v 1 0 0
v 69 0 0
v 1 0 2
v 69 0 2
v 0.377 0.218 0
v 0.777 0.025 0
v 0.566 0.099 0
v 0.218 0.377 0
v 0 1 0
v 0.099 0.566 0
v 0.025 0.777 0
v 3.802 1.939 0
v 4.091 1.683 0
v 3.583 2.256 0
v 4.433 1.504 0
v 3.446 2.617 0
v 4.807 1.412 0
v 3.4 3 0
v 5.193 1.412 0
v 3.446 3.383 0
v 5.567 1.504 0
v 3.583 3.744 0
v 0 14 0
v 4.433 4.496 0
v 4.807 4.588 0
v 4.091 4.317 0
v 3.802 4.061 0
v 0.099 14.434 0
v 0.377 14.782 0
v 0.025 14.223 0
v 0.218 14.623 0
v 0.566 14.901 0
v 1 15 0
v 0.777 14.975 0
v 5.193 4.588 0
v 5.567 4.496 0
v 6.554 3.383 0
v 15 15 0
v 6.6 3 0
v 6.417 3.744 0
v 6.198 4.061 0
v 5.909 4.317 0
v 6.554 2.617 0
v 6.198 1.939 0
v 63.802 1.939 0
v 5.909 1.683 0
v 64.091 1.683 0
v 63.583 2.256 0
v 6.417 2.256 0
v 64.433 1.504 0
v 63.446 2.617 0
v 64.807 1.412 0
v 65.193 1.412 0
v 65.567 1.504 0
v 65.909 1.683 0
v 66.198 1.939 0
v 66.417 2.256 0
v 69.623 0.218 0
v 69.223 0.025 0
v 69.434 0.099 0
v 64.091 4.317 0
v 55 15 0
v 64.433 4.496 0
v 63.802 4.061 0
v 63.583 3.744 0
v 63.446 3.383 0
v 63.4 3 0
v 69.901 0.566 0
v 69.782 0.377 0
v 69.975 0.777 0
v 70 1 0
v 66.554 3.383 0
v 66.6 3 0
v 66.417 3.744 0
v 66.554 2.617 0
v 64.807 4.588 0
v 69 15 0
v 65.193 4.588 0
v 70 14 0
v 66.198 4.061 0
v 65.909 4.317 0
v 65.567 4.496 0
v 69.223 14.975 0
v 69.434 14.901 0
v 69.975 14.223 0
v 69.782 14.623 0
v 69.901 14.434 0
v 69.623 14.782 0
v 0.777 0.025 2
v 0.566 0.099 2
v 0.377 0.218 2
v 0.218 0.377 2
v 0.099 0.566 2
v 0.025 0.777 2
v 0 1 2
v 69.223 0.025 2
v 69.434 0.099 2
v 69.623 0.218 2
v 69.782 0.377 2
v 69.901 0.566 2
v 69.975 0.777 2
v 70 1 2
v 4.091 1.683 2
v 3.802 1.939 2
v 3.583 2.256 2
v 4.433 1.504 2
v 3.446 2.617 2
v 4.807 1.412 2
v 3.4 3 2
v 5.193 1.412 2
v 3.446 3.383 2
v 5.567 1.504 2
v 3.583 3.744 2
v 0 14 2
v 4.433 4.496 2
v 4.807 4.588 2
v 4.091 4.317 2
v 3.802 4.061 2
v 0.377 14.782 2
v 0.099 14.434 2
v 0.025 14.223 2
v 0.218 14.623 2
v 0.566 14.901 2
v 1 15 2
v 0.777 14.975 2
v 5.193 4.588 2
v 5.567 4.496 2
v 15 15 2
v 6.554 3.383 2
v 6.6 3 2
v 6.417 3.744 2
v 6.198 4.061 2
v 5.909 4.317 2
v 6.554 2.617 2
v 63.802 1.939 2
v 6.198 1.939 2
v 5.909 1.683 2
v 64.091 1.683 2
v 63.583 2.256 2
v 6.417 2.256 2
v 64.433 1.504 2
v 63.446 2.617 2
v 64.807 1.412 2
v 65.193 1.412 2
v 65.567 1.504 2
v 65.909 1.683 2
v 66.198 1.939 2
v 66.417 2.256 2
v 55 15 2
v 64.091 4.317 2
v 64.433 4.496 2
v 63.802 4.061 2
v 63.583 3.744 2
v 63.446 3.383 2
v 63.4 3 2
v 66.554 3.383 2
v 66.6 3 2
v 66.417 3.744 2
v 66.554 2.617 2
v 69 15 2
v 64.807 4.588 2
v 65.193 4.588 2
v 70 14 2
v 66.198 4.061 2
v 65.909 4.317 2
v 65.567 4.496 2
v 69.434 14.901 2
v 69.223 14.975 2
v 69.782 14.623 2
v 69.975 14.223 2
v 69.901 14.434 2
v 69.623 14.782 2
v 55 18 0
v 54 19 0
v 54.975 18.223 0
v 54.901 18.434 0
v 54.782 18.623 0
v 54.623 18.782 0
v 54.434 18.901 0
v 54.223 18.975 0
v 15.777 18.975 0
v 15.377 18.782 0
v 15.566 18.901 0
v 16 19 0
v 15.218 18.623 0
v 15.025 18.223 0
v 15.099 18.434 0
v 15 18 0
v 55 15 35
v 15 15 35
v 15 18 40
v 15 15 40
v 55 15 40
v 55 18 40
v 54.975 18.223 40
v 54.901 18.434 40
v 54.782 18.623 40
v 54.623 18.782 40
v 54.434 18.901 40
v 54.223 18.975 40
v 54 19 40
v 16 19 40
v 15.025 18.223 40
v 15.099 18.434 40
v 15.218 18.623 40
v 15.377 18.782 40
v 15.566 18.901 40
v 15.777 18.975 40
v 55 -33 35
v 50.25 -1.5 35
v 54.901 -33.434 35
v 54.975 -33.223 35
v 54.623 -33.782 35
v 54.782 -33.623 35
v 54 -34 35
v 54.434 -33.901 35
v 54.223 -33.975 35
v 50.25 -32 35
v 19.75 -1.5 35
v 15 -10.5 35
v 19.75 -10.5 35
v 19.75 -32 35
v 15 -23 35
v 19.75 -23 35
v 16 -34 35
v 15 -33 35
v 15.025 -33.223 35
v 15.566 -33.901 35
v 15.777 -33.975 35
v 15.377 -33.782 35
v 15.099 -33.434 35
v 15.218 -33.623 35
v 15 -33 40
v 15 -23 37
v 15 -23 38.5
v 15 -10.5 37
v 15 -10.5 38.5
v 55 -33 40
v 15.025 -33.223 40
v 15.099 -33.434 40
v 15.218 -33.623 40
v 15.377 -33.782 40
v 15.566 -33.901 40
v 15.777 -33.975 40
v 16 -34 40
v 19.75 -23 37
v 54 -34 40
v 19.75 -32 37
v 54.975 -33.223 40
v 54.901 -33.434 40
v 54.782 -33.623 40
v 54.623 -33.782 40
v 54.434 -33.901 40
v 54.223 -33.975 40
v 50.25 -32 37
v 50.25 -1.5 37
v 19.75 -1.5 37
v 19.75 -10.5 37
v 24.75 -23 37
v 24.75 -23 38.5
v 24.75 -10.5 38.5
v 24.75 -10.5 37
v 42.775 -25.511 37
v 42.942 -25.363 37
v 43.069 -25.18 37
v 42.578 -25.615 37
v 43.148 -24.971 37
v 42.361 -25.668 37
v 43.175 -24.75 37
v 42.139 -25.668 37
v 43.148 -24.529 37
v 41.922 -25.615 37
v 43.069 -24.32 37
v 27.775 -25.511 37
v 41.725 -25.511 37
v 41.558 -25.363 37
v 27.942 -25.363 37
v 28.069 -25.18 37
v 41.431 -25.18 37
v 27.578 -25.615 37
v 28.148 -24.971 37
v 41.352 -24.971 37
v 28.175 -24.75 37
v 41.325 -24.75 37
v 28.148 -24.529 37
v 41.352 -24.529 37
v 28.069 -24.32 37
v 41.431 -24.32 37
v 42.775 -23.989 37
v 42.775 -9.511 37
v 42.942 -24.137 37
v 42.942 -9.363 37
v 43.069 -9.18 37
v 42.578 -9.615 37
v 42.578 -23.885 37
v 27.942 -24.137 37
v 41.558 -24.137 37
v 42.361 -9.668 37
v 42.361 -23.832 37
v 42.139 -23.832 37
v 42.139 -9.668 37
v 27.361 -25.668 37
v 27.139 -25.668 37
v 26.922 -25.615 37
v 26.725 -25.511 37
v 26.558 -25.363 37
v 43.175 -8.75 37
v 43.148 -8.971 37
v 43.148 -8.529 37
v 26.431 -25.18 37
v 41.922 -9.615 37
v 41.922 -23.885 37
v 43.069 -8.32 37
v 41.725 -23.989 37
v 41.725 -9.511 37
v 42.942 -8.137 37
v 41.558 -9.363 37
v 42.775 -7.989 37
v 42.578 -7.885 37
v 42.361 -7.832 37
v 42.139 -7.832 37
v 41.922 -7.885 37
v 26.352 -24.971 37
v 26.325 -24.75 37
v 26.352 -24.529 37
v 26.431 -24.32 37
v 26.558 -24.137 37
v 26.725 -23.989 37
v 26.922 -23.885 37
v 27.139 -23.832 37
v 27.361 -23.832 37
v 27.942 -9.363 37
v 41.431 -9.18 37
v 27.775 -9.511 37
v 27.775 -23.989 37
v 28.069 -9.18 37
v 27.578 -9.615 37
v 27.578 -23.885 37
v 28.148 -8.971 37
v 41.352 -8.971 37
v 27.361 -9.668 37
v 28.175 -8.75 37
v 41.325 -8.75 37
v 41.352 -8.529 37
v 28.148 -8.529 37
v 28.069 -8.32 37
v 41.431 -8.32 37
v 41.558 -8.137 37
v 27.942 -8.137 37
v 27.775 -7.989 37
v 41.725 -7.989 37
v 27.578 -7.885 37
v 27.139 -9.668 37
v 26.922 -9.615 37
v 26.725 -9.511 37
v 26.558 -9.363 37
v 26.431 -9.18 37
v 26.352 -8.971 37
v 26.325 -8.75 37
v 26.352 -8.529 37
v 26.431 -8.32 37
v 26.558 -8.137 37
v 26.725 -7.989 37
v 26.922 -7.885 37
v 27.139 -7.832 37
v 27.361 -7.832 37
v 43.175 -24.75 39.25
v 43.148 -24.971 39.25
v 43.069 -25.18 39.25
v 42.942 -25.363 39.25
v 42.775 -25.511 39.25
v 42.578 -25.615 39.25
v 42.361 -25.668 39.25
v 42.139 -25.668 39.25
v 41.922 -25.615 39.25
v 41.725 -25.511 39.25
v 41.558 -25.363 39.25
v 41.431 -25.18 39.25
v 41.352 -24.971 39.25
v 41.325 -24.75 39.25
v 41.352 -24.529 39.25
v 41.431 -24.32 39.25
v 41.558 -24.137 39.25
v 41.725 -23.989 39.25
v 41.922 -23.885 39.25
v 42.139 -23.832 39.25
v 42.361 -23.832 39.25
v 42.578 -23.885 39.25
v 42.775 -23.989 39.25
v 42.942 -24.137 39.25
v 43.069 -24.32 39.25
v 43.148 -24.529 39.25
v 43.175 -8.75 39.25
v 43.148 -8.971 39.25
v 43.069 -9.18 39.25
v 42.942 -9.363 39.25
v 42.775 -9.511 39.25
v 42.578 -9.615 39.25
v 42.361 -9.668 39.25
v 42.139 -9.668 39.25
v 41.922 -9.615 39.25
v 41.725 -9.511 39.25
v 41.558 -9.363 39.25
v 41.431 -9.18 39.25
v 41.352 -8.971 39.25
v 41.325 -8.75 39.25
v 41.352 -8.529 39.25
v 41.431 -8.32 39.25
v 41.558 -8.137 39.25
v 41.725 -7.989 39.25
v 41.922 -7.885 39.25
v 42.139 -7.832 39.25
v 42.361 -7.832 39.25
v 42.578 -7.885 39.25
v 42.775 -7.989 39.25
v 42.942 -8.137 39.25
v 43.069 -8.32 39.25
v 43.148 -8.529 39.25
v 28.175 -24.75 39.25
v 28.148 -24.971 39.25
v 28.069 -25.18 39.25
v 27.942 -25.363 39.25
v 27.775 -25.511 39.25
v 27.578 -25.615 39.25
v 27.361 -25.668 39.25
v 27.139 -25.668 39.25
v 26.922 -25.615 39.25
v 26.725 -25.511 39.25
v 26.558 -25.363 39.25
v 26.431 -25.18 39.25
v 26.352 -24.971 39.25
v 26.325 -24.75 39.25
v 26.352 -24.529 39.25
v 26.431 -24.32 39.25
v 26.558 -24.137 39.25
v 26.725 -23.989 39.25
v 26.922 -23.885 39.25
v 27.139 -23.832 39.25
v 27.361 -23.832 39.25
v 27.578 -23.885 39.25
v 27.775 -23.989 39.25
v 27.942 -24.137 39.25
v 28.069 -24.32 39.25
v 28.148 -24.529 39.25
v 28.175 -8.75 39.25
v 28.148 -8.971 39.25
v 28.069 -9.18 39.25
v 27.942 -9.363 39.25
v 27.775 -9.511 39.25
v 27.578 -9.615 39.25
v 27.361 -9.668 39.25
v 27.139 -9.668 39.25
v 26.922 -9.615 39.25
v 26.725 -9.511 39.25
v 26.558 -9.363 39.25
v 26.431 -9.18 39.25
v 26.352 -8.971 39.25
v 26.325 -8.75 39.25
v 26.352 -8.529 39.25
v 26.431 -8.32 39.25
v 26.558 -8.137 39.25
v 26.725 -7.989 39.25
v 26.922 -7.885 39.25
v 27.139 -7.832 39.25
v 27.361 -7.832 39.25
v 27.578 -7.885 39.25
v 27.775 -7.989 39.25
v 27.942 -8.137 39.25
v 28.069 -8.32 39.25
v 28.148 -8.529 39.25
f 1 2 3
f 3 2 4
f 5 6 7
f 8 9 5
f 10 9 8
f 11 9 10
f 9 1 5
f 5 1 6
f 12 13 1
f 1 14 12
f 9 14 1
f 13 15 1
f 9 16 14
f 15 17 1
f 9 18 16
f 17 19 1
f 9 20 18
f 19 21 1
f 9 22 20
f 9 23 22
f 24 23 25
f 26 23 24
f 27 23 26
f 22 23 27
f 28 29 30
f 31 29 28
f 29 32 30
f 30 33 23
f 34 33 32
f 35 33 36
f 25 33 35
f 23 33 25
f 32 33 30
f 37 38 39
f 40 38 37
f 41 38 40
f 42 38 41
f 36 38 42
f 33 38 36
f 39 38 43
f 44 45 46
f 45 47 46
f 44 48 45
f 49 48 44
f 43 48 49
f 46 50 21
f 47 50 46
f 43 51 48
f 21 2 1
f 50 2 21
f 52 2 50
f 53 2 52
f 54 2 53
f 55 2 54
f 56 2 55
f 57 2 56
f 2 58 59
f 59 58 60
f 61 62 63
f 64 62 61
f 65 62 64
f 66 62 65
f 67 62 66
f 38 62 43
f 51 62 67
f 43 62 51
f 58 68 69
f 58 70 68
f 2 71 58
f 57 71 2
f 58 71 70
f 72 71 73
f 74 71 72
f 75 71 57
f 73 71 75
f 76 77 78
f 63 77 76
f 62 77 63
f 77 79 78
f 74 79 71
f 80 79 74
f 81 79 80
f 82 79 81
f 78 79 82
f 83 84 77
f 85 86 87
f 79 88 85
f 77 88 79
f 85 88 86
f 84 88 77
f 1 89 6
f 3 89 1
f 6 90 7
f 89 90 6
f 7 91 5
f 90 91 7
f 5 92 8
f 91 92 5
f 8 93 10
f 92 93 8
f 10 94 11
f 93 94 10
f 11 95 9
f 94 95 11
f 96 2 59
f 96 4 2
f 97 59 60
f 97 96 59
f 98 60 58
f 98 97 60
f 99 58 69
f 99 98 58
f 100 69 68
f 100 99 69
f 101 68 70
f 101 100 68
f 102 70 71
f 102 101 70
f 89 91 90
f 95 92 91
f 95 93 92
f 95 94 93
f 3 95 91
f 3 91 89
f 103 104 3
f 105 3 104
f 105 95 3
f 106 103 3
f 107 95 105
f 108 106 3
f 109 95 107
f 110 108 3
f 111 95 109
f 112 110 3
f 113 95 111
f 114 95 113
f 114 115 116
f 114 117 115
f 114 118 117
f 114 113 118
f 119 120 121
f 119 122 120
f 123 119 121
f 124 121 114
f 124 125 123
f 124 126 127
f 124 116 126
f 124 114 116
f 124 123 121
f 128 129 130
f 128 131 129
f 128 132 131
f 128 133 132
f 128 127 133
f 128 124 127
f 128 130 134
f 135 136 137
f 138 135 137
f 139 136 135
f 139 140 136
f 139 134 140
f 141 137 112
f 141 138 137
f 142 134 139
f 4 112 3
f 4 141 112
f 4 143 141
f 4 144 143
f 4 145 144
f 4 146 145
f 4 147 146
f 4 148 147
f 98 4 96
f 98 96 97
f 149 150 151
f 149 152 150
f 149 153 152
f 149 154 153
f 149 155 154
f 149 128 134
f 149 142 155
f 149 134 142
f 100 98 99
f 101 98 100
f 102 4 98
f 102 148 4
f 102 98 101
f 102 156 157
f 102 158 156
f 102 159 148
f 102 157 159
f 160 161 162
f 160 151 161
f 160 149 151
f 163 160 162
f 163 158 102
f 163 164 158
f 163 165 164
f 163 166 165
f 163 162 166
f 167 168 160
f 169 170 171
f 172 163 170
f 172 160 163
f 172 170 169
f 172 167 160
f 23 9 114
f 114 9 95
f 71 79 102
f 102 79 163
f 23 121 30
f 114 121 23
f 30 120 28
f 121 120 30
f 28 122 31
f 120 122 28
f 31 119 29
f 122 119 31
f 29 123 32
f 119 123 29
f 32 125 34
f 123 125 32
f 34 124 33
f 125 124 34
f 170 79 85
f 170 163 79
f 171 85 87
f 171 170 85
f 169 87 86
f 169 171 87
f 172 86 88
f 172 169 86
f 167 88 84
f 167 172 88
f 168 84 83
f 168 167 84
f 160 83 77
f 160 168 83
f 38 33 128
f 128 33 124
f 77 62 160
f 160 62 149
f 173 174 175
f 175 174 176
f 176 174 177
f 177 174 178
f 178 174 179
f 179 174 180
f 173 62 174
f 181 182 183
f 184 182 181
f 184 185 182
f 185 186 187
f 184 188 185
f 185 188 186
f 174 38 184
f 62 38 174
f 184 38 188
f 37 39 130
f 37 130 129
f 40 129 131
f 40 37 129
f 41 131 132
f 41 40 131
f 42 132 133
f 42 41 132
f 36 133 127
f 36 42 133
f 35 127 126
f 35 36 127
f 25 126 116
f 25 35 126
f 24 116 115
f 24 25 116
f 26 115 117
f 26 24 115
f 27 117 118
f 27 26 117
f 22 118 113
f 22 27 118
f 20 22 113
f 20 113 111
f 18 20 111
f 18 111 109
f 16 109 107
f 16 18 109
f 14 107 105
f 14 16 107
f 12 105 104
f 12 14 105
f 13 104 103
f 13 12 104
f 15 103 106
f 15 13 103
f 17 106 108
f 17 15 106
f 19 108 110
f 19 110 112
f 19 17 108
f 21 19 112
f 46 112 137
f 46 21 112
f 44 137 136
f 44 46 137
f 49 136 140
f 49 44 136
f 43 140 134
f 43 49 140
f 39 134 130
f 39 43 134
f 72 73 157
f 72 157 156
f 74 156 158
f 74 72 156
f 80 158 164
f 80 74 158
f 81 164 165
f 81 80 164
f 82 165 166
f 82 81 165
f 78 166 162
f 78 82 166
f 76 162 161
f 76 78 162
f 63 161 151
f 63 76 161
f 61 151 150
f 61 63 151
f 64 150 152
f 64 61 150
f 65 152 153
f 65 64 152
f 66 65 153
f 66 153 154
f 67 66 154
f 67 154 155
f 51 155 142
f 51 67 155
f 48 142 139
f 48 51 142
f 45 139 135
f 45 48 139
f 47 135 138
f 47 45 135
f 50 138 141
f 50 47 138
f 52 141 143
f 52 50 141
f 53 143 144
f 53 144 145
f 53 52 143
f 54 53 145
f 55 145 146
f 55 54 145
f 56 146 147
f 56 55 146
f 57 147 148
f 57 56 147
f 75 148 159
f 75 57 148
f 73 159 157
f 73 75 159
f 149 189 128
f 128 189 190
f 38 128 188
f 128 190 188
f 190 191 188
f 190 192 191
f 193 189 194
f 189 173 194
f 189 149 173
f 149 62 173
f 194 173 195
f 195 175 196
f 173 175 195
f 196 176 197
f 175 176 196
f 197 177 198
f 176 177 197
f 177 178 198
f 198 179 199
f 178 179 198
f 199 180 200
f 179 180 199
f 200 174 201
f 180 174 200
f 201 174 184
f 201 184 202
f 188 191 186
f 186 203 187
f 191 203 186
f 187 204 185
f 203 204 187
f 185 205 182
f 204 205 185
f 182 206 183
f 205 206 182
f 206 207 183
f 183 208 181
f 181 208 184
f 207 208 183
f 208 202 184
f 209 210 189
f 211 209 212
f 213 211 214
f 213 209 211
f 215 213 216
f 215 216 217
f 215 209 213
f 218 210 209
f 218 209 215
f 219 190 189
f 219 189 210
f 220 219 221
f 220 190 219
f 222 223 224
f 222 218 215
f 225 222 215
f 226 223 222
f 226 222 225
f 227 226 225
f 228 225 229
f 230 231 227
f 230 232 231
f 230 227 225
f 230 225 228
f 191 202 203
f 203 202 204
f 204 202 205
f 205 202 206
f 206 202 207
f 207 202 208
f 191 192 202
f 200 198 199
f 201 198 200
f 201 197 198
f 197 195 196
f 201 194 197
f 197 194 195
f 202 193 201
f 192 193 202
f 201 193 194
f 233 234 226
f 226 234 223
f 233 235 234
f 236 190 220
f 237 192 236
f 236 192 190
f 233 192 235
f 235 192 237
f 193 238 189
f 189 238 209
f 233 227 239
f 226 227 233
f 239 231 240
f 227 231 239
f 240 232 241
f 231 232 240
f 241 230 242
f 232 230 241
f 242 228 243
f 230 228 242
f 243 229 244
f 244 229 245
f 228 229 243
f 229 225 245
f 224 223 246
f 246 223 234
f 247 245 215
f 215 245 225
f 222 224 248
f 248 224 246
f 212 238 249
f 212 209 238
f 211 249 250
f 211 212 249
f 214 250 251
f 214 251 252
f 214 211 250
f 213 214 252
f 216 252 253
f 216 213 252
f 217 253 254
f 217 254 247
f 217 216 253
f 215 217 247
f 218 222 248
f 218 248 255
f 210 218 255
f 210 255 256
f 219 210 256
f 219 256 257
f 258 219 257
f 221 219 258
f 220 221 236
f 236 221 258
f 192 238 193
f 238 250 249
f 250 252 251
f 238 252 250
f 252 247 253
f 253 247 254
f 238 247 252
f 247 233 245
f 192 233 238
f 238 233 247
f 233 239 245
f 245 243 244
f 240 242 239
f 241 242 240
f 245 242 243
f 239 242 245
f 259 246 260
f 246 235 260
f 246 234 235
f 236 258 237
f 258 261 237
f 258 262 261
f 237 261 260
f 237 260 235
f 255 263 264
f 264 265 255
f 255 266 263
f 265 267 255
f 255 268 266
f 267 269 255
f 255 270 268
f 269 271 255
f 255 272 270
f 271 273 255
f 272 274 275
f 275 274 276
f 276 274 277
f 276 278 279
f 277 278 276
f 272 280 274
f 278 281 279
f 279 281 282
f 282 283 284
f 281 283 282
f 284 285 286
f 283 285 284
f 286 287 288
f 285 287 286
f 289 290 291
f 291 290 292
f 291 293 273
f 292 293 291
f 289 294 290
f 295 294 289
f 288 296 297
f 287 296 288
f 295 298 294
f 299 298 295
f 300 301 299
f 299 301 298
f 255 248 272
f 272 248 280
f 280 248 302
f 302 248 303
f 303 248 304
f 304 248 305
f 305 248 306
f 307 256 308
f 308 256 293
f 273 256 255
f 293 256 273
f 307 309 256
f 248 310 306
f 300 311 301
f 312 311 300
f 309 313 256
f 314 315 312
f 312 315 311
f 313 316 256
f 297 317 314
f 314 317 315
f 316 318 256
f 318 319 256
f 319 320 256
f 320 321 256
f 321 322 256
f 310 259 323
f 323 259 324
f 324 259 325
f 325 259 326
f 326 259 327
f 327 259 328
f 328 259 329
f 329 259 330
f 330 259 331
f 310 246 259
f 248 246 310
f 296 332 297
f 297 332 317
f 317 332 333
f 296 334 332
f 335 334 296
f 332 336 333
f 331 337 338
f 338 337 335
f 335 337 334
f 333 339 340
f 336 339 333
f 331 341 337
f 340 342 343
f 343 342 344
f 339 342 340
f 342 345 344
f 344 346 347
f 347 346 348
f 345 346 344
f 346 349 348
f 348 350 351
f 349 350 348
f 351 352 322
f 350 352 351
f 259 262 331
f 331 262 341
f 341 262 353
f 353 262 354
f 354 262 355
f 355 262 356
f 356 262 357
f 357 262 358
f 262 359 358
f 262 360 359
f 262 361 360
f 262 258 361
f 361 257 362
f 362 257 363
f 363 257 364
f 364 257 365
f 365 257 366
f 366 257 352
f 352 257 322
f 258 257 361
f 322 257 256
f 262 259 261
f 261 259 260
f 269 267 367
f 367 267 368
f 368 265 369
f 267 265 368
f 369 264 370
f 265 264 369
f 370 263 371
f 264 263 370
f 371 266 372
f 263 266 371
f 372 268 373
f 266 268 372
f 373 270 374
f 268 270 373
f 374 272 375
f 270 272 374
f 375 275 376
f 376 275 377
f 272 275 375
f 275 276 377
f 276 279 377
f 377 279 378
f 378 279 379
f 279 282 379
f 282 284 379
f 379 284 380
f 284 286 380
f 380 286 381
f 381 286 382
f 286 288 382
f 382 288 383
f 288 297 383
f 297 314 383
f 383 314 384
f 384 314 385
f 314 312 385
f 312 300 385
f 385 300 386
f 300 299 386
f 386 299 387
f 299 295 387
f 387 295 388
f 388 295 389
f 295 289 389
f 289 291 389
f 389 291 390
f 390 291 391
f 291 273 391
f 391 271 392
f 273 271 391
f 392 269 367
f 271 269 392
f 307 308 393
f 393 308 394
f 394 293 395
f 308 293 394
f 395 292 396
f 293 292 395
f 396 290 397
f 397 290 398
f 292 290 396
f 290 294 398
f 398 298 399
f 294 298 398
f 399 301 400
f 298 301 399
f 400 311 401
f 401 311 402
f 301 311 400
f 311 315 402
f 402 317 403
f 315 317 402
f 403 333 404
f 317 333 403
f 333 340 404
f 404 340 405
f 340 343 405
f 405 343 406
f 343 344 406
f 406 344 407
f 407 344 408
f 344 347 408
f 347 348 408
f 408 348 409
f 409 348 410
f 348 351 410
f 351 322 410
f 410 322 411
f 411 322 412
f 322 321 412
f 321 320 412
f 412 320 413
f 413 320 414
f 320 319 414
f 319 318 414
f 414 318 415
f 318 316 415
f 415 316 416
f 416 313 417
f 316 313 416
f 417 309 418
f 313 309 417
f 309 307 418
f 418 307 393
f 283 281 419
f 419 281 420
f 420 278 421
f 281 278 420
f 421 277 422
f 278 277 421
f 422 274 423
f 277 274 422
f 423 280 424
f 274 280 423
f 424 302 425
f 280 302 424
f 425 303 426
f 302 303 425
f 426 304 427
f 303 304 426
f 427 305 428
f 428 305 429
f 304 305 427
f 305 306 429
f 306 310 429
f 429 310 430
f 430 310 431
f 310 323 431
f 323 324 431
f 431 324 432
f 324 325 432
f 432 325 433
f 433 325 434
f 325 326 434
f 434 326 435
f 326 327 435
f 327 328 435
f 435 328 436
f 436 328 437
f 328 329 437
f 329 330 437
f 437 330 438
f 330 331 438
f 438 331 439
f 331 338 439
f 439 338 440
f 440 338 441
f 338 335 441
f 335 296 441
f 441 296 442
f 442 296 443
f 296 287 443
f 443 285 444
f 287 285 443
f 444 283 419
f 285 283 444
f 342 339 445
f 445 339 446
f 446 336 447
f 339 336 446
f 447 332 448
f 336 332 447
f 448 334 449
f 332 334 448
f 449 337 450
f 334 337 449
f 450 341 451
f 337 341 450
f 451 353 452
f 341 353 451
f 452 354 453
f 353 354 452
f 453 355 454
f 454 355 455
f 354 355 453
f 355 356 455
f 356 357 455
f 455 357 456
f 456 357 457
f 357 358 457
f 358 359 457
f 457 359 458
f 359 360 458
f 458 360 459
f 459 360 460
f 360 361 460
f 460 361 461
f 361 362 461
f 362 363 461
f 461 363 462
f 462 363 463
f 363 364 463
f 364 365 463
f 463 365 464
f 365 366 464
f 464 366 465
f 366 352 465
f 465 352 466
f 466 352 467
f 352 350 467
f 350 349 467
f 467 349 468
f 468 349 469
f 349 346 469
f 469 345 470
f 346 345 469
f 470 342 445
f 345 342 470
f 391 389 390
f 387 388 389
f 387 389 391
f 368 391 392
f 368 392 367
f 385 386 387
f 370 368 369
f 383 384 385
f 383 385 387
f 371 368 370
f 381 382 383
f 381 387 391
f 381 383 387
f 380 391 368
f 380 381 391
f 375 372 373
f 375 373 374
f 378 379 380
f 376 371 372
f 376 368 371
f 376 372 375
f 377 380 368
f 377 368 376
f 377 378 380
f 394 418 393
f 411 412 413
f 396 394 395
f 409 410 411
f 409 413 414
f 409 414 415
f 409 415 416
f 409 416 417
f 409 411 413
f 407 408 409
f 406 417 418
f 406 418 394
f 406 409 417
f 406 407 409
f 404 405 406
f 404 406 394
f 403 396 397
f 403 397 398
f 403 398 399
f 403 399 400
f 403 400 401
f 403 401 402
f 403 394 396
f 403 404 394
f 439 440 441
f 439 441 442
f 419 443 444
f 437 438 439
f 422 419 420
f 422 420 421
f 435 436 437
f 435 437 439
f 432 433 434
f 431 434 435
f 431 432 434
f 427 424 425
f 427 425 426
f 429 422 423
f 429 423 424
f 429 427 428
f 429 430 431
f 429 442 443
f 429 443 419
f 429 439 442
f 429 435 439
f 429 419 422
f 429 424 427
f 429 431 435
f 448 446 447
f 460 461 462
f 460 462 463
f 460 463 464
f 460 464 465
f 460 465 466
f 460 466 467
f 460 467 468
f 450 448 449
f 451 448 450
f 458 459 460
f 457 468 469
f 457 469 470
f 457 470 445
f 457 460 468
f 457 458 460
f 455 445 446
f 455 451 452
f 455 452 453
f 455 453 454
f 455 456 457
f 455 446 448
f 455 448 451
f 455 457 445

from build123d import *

# Parameters (mm, degrees)
SKETCH_W        = 70
SKETCH_H        = 15
SKETCH_R        = 1.6
PAD_DEPTH       = 2
SKETCH001_W     = 40
SKETCH001_H     = 40
PAD001_DEPTH    = 4
SKETCH002_W     = 40
SKETCH002_H     = 49
PAD002_DEPTH    = 5
POCKET_DEPTH    = 2
SKETCH004_W     = 9.75
SKETCH004_H     = 12.5
POCKET001_DEPTH = 1.5
SKETCH005_R     = 0.925
POCKET002_DEPTH = 2.25
FILLET_R        = 1


with BuildPart() as part:
    # Sketch → Pad (new body)
    with BuildSketch(Plane.XY):
        with Locations((35, 7.5)):
            Rectangle(SKETCH_W, SKETCH_H)
        with Locations((5, 3)):
            Circle(SKETCH_R, mode=Mode.SUBTRACT)
        with Locations((65, 3)):
            Circle(SKETCH_R, mode=Mode.SUBTRACT)
    extrude(amount=PAD_DEPTH)

    # Sketch001 (on Face3 of Pad) → Pad001 (join)
    with BuildSketch(Plane(origin=(0, 15, 0), x_dir=(-1, 0, 0), z_dir=(0, 1, 0))):
        with Locations((-35, 20)):
            Rectangle(SKETCH001_W, SKETCH001_H)
    extrude(amount=PAD001_DEPTH)

    # Sketch002 (on Face15 of Pad001) → Pad002 (join)
    with BuildSketch(Plane.XY.offset(40)):
        with Locations((35, -9.5)):
            Rectangle(SKETCH002_W, SKETCH002_H)
    extrude(amount=-PAD002_DEPTH)

    # Sketch003 (on Face15 of Pad002) → Pocket (cut)
    with BuildSketch(Plane(origin=(0, 0, 35), x_dir=(1, 0, 0), z_dir=(0, 0, -1))):
        Polygon((19.75, 32), (50.25, 32), (50.25, 1.5), (19.75, 1.5), (19.75, 10.5), (15, 10.5), (15, 23), (19.75, 23), align=None)
    extrude(amount=-POCKET_DEPTH, mode=Mode.SUBTRACT)

    # Sketch004 (on Face28 of Pocket) → Pocket001 (cut)
    with BuildSketch(Plane(origin=(0, 0, 37), x_dir=(1, 0, 0), z_dir=(0, 0, -1))):
        with Locations((19.875, 16.75)):
            Rectangle(SKETCH004_W, SKETCH004_H)
    extrude(amount=-POCKET001_DEPTH, mode=Mode.SUBTRACT)

    # Sketch005 (on Face31 of Pocket001) → Pocket002 (cut)
    with BuildSketch(Plane(origin=(0, 0, 37), x_dir=(1, 0, 0), z_dir=(0, 0, -1))):
        with Locations((27.25, 24.75)):
            Circle(SKETCH005_R)
        with Locations((42.25, 24.75)):
            Circle(SKETCH005_R)
        with Locations((27.25, 8.75)):
            Circle(SKETCH005_R)
        with Locations((42.25, 8.75)):
            Circle(SKETCH005_R)
    extrude(amount=-POCKET002_DEPTH, mode=Mode.SUBTRACT)

    # Fillet
    fillet_edges = [part.edges().sort_by_distance(p)[0] for p in [
        (70, 0, 1),
        (70, 15, 1),
        (0, 0, 1),
        (0, 15, 1),
        (15, -34, 37.5),
        (55, -34, 37.5),
        (15, 19, 20),
        (55, 19, 20),
    ]]
    fillet(fillet_edges, radius=FILLET_R)


solid = part.part
